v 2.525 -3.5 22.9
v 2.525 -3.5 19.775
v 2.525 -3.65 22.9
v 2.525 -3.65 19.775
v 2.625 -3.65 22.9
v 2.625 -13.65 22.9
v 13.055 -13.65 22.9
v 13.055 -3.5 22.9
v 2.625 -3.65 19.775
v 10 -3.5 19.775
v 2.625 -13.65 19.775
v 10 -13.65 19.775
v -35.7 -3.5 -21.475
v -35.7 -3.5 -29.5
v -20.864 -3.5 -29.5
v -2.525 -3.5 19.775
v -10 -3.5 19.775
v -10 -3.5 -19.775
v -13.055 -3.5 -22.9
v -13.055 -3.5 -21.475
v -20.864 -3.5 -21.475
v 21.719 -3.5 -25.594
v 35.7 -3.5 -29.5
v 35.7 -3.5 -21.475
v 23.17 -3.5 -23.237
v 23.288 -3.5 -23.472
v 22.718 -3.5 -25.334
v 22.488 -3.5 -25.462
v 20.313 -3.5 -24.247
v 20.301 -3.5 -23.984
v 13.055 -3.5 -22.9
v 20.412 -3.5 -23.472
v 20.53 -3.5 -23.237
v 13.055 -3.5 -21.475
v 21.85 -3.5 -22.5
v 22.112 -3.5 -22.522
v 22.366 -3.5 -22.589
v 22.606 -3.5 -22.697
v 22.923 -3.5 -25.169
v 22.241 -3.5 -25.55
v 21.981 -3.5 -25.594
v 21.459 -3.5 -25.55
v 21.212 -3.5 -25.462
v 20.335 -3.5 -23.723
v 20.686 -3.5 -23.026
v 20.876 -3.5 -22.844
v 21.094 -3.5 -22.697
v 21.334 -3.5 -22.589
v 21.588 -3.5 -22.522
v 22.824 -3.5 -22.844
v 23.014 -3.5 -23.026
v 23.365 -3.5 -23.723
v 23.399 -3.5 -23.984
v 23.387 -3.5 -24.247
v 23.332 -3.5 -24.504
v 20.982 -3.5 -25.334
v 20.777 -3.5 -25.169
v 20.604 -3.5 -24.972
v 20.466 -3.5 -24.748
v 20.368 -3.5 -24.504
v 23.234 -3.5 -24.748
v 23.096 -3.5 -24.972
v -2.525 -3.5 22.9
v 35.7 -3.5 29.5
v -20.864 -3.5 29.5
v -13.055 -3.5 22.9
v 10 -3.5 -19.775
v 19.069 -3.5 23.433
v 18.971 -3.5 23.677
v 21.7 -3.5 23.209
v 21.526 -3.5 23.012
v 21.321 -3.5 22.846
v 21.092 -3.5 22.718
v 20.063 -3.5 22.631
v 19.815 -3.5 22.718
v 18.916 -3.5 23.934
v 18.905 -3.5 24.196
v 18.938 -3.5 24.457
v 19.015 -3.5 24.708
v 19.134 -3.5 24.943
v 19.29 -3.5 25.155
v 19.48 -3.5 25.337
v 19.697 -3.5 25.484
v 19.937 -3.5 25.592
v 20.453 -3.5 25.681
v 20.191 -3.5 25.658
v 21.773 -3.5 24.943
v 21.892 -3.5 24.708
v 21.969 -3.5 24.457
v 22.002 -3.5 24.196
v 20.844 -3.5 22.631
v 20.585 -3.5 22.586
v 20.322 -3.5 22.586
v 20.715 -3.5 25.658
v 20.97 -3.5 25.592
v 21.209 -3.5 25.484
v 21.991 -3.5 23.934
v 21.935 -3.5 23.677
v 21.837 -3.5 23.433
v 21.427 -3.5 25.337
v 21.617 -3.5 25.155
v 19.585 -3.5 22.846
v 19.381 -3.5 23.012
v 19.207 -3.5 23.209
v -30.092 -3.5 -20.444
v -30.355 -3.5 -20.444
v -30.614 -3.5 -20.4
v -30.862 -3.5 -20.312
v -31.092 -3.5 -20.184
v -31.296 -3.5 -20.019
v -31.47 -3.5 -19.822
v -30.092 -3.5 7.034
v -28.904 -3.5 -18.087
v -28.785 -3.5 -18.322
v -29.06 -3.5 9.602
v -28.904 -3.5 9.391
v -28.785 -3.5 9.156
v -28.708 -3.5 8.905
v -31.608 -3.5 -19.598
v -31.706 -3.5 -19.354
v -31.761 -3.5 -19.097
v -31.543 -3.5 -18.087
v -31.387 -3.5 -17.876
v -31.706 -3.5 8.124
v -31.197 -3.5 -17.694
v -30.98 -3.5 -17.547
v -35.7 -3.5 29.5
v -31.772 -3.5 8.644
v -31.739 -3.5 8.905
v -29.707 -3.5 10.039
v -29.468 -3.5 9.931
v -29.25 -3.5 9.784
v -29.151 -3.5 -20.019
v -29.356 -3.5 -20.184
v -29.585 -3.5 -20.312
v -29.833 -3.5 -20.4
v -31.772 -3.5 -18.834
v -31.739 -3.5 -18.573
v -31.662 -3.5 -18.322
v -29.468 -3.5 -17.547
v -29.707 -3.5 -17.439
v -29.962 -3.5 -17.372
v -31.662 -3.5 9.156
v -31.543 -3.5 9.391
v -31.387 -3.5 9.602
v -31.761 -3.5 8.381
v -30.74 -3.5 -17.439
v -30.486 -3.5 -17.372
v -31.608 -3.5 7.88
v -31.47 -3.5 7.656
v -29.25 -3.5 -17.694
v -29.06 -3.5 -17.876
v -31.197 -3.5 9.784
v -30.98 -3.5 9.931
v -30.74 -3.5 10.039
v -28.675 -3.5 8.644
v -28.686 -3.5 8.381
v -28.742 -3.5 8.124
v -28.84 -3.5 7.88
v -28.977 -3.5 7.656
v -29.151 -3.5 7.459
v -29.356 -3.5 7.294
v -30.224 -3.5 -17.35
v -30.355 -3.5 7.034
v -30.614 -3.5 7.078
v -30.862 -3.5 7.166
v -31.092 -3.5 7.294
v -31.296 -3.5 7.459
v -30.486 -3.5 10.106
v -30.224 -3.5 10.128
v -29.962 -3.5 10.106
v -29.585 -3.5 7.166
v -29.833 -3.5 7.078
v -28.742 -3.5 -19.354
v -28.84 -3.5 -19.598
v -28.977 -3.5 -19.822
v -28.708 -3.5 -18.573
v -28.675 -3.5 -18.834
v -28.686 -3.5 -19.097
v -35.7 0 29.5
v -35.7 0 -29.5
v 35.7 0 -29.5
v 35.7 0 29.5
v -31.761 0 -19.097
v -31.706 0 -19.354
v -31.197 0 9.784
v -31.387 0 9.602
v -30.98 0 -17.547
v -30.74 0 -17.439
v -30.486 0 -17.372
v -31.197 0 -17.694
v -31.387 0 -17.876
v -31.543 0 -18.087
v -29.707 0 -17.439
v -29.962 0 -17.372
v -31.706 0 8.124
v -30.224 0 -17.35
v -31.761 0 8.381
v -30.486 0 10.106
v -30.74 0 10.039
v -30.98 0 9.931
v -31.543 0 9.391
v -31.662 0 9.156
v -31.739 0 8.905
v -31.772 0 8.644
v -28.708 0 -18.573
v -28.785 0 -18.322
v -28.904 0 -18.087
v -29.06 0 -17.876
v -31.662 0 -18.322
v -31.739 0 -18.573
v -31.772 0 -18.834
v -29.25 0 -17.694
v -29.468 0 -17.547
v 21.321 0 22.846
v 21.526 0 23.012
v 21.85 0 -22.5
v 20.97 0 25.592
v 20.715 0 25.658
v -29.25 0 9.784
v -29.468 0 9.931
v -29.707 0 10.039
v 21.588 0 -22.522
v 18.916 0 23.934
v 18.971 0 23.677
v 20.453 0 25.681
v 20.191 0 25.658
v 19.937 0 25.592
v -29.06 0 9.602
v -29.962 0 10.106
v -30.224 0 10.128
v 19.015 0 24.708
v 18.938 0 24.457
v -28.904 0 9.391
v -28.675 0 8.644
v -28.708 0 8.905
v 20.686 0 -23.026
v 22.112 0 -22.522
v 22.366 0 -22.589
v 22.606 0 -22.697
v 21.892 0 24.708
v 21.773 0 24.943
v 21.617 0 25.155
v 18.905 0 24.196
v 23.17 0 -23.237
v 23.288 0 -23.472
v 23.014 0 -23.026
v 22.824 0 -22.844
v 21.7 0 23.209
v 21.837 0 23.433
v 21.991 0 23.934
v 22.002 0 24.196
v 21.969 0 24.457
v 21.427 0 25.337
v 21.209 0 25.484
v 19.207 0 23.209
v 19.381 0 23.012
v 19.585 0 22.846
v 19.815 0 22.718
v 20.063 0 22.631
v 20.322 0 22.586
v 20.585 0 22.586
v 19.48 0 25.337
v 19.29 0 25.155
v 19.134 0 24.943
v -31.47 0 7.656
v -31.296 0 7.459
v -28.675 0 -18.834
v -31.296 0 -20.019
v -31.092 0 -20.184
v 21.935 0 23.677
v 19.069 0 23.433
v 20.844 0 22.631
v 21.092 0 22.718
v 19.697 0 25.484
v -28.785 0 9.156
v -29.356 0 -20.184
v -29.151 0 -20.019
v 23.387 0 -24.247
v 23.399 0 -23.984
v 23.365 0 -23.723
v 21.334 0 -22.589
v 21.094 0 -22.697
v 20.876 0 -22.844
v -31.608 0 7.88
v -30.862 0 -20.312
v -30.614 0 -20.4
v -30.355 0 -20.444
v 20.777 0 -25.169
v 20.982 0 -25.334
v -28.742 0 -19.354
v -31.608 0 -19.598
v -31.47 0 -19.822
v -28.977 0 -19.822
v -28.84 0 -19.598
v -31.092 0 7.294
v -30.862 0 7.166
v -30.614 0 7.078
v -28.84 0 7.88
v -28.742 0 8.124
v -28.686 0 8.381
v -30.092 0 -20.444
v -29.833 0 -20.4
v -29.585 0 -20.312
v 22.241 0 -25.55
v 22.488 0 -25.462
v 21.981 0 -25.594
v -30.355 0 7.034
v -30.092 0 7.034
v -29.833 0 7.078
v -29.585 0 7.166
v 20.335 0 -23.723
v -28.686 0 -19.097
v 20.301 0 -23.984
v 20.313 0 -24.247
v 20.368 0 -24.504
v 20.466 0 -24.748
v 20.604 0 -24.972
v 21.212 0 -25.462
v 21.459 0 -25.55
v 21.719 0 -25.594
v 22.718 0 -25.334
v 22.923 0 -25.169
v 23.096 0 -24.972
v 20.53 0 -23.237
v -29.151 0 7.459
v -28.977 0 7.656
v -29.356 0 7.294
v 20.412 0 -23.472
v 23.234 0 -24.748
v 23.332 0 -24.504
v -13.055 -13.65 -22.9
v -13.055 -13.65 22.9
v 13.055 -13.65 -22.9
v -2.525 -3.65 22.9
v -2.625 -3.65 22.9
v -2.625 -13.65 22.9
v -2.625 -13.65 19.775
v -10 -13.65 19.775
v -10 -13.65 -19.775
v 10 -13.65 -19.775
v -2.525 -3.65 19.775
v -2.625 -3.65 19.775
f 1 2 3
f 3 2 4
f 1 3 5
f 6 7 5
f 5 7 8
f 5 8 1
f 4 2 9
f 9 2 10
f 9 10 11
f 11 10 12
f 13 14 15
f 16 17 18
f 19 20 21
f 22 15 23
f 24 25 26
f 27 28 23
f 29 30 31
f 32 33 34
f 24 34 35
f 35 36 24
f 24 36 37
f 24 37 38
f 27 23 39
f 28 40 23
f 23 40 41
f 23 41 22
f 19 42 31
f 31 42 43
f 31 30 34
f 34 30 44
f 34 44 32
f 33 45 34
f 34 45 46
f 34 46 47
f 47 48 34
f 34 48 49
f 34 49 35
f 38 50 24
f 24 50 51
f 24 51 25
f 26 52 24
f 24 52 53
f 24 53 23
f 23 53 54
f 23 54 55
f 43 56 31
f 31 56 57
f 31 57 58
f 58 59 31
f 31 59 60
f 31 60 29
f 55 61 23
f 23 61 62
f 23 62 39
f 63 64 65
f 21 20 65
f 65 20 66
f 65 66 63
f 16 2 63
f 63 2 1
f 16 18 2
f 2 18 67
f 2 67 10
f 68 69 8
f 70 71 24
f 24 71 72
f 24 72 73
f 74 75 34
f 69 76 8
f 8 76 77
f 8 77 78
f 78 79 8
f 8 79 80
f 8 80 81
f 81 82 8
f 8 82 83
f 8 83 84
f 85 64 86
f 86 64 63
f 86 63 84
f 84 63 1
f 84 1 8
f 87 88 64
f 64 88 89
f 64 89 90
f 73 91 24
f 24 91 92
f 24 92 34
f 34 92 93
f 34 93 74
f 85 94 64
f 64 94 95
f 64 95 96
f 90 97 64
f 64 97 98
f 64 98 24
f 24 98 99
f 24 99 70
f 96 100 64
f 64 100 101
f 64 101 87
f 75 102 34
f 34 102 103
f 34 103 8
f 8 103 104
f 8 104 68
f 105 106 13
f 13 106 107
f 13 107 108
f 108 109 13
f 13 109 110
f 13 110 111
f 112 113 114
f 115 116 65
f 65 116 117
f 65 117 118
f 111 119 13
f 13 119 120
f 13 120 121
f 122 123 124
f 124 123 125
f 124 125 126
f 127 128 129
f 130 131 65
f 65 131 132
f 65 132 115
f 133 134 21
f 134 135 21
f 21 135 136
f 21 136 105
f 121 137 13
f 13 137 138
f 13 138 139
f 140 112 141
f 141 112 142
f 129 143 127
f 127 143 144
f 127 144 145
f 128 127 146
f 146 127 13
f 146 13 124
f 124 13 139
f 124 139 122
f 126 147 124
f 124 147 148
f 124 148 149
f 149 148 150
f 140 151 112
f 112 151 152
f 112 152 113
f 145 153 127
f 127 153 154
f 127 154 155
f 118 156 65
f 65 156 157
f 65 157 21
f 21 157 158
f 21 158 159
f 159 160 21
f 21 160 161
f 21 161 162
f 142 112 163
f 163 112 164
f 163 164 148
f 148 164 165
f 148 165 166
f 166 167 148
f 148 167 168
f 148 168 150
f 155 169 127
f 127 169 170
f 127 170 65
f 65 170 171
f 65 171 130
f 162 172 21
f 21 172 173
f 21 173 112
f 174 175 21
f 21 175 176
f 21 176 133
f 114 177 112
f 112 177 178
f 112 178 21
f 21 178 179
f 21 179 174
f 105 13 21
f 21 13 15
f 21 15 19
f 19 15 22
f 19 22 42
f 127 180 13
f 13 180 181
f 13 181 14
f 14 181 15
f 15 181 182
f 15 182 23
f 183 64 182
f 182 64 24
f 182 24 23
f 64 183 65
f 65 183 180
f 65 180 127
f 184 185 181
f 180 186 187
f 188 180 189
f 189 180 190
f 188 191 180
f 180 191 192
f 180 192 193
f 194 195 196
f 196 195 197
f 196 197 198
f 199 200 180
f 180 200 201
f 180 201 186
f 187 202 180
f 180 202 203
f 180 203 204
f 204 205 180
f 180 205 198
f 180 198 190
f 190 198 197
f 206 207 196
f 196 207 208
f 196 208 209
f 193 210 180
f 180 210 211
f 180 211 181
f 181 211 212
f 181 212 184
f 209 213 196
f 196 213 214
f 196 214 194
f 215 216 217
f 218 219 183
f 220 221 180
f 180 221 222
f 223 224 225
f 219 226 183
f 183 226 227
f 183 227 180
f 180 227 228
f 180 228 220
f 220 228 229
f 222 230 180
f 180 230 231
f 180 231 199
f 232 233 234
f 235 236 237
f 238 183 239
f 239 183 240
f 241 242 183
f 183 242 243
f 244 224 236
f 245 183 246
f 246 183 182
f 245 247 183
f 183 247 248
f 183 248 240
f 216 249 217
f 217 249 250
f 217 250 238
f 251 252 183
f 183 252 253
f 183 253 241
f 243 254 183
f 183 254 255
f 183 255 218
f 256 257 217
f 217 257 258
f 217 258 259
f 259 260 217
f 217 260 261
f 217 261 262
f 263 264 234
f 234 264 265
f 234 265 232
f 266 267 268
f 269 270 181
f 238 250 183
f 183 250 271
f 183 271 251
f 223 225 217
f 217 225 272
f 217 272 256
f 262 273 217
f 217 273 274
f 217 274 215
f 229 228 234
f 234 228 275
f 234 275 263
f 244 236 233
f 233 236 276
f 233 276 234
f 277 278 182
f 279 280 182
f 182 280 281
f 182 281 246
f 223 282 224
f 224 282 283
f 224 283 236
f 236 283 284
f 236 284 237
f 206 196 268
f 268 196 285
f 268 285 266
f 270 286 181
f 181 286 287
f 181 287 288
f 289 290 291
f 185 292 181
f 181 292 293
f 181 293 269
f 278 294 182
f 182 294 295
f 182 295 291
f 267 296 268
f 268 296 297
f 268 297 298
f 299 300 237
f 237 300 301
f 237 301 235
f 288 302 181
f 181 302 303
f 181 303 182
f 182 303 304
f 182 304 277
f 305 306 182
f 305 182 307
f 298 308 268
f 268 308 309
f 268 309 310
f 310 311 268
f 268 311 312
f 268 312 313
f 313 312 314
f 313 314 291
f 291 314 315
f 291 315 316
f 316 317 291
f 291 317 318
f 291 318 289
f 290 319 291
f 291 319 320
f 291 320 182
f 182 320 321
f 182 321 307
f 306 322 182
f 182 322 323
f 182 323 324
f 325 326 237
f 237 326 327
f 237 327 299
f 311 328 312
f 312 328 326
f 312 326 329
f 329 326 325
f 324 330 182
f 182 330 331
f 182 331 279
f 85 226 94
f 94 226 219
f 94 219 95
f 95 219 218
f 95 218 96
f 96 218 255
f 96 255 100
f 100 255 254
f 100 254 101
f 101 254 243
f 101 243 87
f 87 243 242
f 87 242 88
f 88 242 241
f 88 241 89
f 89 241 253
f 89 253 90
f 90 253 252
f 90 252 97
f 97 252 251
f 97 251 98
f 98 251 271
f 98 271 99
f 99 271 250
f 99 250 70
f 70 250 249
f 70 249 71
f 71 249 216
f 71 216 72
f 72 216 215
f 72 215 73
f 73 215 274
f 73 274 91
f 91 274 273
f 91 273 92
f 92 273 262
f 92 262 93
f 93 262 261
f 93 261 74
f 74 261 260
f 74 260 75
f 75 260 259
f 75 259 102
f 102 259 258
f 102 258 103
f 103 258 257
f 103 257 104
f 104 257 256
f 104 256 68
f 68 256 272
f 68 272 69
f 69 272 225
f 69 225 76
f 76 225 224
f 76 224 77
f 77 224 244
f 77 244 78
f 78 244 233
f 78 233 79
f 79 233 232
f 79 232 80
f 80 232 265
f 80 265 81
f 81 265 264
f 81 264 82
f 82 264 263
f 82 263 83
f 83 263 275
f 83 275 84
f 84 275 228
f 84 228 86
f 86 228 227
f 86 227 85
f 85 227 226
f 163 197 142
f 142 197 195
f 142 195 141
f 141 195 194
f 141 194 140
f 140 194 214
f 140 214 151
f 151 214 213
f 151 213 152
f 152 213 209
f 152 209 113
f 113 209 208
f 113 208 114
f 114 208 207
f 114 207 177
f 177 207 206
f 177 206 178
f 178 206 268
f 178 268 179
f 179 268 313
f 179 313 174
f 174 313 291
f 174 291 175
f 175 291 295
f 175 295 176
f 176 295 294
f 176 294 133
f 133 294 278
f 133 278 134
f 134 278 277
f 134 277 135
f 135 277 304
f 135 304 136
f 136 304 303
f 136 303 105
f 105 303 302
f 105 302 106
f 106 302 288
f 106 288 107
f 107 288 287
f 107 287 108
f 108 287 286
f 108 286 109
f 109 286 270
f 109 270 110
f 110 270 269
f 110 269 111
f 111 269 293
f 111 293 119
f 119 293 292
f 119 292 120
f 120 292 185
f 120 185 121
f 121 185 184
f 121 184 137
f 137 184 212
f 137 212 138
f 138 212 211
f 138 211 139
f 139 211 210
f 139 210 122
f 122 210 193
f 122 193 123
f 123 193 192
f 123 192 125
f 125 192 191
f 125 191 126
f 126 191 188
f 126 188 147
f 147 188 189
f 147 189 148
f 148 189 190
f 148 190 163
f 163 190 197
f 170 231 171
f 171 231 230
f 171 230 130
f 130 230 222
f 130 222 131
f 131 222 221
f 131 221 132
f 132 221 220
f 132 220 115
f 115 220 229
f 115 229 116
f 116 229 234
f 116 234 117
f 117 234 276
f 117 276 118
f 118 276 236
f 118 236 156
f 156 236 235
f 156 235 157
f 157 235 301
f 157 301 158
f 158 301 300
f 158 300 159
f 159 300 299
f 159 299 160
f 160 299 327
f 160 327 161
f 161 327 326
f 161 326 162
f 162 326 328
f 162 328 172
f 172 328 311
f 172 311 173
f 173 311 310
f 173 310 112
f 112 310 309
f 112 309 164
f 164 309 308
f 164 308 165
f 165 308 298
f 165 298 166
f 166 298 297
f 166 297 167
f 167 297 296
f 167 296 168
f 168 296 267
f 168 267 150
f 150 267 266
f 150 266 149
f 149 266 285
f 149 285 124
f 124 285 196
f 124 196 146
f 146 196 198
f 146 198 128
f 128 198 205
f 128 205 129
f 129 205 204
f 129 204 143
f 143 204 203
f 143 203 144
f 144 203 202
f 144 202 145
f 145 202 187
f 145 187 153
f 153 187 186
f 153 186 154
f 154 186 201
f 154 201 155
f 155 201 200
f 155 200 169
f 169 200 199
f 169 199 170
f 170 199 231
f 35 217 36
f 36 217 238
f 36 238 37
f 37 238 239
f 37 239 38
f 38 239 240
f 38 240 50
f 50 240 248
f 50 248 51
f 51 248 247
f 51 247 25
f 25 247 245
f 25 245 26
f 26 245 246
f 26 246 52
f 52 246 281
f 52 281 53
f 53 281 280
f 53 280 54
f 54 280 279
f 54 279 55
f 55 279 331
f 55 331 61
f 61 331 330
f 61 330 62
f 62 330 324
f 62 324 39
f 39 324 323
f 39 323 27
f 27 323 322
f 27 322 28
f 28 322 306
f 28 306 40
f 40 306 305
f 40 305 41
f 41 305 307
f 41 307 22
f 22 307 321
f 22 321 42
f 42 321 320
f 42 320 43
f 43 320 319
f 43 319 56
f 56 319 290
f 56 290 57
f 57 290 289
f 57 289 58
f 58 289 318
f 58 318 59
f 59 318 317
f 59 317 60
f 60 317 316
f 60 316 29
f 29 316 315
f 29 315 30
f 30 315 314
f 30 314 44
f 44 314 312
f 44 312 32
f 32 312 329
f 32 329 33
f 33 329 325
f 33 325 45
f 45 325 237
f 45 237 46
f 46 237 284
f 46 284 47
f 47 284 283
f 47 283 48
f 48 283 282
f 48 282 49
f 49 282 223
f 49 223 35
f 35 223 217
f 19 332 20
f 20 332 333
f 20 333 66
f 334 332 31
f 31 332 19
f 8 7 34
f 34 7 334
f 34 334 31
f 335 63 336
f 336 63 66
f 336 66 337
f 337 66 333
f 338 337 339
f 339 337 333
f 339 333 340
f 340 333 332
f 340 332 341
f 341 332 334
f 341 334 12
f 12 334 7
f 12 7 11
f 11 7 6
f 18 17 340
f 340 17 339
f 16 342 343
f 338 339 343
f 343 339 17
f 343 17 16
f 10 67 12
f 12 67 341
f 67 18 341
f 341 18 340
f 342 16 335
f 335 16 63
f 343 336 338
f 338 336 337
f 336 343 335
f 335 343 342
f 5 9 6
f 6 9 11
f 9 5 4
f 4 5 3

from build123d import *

# Parameters (mm, degrees)
SKETCH_1_W               = 71.4
SKETCH_1_H               = 59
EXTRUDE_1_DEPTH          = 3.5
CUT_EXTRUDE_4_DEPTH      = 8.5
CUT_EXTRUDE_4_DEPTH_BACK = 15
SKETCH_2_R               = 1.55
SKETCH_5_W               = 26.11
SKETCH_5_H               = 45.8
EXTRUDE_2_DEPTH          = 10.15
SKETCH_6_W               = 20
SKETCH_6_H               = 39.55
CUT_EXTRUDE_5_DEPTH      = 10.15
SKETCH_9_W               = 5.05
SKETCH_9_H               = 10.15
CUT_EXTRUDE_6_DEPTH      = 10
SKETCH_12_W              = 0.1
SKETCH_12_H              = 3.125
CUT_EXTRUDE_7_DEPTH      = 10


with BuildPart() as part:
    # 草圖1 → 填料-伸長1 (new body)
    with BuildSketch(Plane(origin=(0, 0, 0), x_dir=(1, 0, 0), z_dir=(0, 1, 0))):
        Rectangle(SKETCH_1_W, SKETCH_1_H)
    extrude(amount=-EXTRUDE_1_DEPTH)

    # 草圖2 → 除料-伸長4 (cut, two sides: drawn at the far end of the back side and taken through both)
    with BuildSketch(Plane(origin=(0, 0, 0), x_dir=(1, 0, 0), z_dir=(0, 1, 0)).offset(-CUT_EXTRUDE_4_DEPTH_BACK)):
        with Locations(Location((20.453418067, -24.130543915, 0), (0, 0, 270))):
            Circle(SKETCH_2_R)
        with Locations(Location((-30.223577589, 18.9, 0), (0, 0, 270))):
            Circle(SKETCH_2_R)
        with Locations(Location((-30.223577589, -8.577967438, 0), (0, 0, 270))):
            Circle(SKETCH_2_R)
        with Locations(Location((21.85, 24.05, 0), (0, 0, 270))):
            Circle(SKETCH_2_R)
    extrude(amount=CUT_EXTRUDE_4_DEPTH + CUT_EXTRUDE_4_DEPTH_BACK, mode=Mode.SUBTRACT)

    # 草圖5 → 填料-伸長2 (add)
    with BuildSketch(Plane(origin=(0, -3.5, 0), x_dir=(-1, 0, 0), z_dir=(0, -1, 0))):
        Rectangle(SKETCH_5_W, SKETCH_5_H)
    extrude(amount=EXTRUDE_2_DEPTH)

    # 草圖6 → 除料-伸長5 (cut)
    with BuildSketch(Plane.XZ.offset(13.65)):
        Rectangle(SKETCH_6_W, SKETCH_6_H)
    extrude(amount=-CUT_EXTRUDE_5_DEPTH, mode=Mode.SUBTRACT)

    # 草圖9 → 除料-伸長6 (cut)
    with BuildSketch(Plane.XY.offset(22.9)):
        with Locations((0, -8.575)):
            Rectangle(SKETCH_9_W, SKETCH_9_H)
    extrude(amount=-CUT_EXTRUDE_6_DEPTH, mode=Mode.SUBTRACT)

    # 草圖12 → 除料-伸長7 (cut)
    with BuildSketch(Plane.XZ.offset(13.65)):
        with Locations((-2.575, 21.3375)):
            Rectangle(SKETCH_12_W, SKETCH_12_H)
        with Locations((2.575, 21.3375)):
            Rectangle(SKETCH_12_W, SKETCH_12_H)
    extrude(amount=-CUT_EXTRUDE_7_DEPTH, mode=Mode.SUBTRACT)


solid = part.part
